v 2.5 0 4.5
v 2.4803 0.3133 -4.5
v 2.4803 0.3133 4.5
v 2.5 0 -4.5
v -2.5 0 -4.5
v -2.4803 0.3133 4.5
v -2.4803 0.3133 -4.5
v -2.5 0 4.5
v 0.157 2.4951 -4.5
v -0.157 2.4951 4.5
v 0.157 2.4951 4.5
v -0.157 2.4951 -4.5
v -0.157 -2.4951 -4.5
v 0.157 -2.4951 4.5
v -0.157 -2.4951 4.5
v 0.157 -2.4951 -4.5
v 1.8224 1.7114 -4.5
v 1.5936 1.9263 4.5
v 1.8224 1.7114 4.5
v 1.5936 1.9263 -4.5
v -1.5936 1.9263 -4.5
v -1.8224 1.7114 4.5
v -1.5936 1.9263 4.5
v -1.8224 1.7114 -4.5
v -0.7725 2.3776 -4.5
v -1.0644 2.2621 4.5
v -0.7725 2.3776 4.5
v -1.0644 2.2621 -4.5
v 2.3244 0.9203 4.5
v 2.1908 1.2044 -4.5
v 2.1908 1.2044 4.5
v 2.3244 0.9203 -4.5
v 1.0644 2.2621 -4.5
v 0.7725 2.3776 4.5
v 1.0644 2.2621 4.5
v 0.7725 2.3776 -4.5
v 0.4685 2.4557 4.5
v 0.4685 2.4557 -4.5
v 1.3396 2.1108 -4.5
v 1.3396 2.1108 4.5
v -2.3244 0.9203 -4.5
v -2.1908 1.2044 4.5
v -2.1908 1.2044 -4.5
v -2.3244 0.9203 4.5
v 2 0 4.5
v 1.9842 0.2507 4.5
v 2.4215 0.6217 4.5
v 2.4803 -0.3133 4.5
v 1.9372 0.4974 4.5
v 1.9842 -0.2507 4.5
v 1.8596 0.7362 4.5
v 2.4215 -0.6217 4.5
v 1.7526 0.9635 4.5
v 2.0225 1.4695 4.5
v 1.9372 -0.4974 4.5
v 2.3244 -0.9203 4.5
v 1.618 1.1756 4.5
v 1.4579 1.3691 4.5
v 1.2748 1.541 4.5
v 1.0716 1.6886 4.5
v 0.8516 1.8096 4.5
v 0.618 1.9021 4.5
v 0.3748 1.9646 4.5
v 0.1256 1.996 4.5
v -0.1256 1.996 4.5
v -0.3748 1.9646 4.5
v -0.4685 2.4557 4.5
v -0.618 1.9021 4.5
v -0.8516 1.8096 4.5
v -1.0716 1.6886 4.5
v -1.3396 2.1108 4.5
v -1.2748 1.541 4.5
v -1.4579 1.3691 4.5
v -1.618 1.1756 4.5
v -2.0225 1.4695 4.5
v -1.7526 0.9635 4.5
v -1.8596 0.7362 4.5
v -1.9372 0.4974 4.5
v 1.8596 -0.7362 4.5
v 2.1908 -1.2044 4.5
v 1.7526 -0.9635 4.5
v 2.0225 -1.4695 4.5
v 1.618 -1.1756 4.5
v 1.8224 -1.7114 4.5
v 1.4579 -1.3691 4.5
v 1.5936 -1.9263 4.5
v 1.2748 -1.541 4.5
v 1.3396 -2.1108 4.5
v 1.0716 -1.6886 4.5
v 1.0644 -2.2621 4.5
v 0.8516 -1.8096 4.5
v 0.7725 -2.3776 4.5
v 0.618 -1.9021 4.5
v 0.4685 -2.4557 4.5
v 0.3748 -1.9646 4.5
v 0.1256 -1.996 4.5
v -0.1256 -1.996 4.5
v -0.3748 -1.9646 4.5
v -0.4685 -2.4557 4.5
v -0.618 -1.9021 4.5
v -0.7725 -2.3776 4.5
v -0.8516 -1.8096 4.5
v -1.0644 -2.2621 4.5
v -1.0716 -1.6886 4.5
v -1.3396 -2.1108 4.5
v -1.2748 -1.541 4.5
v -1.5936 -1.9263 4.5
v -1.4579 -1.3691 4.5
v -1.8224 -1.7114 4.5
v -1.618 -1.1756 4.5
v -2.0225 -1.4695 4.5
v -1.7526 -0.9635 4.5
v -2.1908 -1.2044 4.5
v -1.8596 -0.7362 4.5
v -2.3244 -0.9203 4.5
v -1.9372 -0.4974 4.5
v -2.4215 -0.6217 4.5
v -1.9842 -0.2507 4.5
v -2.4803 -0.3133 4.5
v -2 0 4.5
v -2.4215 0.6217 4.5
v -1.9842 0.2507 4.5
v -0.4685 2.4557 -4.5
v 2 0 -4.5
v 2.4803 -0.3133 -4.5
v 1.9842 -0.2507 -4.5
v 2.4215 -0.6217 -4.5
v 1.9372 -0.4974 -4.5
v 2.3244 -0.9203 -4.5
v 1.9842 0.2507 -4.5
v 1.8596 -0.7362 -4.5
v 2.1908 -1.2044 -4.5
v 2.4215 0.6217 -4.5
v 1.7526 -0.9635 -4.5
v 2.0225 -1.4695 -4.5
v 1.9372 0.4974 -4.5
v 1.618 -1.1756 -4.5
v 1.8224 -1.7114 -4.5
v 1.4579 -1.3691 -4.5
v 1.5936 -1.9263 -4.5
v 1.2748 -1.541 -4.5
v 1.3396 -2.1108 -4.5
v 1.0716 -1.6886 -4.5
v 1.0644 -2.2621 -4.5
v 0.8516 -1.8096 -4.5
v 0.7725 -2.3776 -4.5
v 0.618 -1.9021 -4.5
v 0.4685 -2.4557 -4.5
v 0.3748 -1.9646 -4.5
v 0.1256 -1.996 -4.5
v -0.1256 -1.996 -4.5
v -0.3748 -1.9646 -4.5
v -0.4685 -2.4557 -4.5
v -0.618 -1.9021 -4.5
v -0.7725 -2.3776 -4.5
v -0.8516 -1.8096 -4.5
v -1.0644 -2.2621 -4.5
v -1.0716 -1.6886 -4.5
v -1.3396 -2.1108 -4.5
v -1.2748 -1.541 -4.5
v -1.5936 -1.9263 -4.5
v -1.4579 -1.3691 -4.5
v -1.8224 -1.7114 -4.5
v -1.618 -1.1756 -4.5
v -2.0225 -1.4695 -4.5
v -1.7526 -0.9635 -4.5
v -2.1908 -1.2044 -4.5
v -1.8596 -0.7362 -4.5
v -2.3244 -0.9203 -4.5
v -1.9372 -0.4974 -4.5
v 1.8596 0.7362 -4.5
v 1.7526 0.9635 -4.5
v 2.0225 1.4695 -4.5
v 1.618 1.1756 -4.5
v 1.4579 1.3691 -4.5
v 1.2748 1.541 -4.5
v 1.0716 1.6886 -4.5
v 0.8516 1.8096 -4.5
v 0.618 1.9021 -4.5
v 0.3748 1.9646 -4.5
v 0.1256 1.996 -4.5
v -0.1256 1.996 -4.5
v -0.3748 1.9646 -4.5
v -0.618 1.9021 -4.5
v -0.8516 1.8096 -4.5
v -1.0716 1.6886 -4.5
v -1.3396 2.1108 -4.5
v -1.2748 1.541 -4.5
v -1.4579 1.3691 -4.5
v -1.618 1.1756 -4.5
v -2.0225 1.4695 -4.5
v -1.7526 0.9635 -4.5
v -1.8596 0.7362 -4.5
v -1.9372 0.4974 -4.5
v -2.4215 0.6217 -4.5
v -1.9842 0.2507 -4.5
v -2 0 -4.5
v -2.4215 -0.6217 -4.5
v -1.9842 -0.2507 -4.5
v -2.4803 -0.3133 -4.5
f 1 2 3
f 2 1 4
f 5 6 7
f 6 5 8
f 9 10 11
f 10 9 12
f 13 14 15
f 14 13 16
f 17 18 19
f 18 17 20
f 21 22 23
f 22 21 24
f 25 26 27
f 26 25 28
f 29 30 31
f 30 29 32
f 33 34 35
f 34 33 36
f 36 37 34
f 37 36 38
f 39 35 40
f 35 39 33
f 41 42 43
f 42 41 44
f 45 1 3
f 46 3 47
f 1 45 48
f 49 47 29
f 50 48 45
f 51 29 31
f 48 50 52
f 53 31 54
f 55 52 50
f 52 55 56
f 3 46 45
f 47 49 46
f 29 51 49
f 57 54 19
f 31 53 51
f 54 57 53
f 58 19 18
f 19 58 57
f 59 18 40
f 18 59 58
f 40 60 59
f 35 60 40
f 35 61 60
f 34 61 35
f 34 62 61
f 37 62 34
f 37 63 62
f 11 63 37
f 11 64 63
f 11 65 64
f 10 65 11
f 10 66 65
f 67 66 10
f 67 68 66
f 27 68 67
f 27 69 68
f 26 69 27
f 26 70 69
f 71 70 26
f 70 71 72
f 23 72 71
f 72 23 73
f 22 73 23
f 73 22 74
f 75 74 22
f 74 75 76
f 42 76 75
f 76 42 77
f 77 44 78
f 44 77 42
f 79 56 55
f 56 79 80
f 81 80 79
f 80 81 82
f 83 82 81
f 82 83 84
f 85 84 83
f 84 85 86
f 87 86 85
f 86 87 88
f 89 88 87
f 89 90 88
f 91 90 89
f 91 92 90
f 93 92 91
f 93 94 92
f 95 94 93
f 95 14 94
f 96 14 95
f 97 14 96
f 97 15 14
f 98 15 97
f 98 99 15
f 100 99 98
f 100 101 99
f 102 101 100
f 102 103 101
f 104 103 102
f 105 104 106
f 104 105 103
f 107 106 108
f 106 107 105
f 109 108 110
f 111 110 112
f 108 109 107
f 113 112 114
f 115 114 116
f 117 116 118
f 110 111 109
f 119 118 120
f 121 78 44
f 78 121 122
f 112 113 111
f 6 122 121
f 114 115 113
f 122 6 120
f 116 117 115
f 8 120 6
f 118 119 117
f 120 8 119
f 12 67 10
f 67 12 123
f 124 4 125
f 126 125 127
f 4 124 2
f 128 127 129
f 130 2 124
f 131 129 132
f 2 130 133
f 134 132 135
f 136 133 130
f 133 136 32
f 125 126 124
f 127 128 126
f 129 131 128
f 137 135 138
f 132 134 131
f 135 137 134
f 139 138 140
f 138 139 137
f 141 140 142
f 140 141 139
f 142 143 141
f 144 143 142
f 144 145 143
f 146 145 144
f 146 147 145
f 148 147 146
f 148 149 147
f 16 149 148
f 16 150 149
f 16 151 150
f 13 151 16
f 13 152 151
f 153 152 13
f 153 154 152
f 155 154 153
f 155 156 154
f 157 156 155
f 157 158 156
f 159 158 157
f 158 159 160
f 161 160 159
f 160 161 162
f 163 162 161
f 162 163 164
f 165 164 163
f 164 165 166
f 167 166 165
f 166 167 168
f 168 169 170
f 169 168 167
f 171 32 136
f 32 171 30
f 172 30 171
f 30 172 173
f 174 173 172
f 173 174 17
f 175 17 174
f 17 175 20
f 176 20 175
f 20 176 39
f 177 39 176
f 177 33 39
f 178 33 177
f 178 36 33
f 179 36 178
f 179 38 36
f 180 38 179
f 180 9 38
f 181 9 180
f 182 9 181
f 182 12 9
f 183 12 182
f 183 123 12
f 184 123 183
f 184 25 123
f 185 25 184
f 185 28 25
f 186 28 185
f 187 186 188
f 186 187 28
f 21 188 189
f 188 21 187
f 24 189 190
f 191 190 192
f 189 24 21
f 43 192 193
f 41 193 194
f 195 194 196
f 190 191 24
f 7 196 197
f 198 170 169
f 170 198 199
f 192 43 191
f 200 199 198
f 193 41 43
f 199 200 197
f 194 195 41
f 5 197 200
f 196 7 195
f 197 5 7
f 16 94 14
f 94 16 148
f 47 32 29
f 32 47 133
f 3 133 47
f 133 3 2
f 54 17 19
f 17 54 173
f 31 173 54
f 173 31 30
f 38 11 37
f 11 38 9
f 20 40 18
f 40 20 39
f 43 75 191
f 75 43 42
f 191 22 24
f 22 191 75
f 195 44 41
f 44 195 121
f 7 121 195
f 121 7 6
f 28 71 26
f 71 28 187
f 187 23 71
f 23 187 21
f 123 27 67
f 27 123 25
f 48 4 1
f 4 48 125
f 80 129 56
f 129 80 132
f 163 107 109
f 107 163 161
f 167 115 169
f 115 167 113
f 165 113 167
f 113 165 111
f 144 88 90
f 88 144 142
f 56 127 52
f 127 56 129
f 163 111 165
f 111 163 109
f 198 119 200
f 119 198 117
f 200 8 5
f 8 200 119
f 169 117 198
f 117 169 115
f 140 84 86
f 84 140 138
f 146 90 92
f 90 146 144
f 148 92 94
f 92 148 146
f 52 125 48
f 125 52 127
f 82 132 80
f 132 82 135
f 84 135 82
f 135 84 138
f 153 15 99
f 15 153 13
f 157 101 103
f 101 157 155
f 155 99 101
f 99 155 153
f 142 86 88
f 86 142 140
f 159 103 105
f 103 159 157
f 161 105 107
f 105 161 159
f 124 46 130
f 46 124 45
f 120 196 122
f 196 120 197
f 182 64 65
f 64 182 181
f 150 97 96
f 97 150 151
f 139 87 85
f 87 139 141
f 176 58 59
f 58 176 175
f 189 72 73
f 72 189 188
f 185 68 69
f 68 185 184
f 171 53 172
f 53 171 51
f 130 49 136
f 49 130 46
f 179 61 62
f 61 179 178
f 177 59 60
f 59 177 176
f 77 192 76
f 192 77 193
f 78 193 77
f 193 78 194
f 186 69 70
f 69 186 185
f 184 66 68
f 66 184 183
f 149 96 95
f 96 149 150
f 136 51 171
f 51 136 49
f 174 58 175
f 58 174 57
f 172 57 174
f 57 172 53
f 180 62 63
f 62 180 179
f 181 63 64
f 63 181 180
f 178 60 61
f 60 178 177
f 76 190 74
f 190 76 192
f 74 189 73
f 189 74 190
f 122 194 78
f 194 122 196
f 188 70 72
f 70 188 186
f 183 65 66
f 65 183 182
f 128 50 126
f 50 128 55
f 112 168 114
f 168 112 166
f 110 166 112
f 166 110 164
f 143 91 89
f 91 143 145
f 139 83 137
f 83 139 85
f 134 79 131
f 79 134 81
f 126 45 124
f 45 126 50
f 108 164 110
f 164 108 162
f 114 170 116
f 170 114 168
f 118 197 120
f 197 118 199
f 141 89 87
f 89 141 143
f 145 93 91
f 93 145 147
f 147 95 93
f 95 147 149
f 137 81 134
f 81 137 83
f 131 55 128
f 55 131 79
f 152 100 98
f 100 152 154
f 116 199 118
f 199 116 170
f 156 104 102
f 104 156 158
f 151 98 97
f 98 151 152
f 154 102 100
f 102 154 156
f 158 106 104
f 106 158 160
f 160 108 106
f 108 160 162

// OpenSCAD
$fn = 50;


difference() {
	union() {
		translate(v = [0, 0, -4.5000000000]) {
			cylinder(h = 9, r = 2.5000000000);
		}
	}
	union() {
		translate(v = [0, 0, -100.0000000000]) {
			cylinder(h = 200, r = 2);
		}
	}
}
